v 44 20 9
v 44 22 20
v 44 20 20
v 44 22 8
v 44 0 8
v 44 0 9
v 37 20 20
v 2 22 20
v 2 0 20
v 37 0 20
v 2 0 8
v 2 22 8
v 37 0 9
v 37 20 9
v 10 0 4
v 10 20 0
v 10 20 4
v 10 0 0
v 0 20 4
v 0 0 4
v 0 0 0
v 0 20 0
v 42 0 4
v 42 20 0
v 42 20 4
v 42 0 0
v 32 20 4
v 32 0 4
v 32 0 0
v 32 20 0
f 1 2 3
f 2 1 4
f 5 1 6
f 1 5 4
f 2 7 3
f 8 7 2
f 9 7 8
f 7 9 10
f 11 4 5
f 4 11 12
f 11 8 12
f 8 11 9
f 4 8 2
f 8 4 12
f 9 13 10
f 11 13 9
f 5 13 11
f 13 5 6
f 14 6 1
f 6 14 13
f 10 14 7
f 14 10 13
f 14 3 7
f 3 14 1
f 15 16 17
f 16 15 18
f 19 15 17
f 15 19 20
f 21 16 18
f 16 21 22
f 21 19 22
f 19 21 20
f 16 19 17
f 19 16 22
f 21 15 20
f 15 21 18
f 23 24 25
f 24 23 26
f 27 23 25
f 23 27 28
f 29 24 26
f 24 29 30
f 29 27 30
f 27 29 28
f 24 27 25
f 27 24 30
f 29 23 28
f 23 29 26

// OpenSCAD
// Definitions for individual components
module support_block() {
    cube([10, 20, 4]); // Resize to ensure clean, sharp-rectangular edges
}

module base_block() {
    difference() {
        cube([42, 22, 12]); // Increased thickness for the base block
        translate([35, 0, 1]) {
            cube([7, 20, 13]); // Refine to form a proper trapezoidal profile
        }
    }
}

module angled_extension() {
    polyhedron(
        points = [
            [0, 0, 0],    // Bottom-left
            [30, 0, 0],   // Bottom-right
            [30, 20, 0],  // Top-right
            [0, 20, 20], // Adjust to create sharper slope with an acute angle
        ],
        faces = [
            [0, 1, 2],
            [0, 2, 3],
            [1, 2, 3],
            [0, 1, 3],
        ]
    );
}

// Combining layers to create the 3D model
module flexible_coupling() {
    // Layer 1 - Support Blocks
    translate([0, 0, 0]) { support_block(); }
    translate([32, 0, 0]) { support_block(); } // Align symmetrically with base block

    // Layer 2 - Base Block
    translate([2, 0, 8]) { base_block(); } // Adjust alignment and elevation

    // Layer 3 - Angled Extension
    translate([0, 0, 20]) { angled_extension(); } // Adjust position closer to base block
}

// Render the 3D model
flexible_coupling();
